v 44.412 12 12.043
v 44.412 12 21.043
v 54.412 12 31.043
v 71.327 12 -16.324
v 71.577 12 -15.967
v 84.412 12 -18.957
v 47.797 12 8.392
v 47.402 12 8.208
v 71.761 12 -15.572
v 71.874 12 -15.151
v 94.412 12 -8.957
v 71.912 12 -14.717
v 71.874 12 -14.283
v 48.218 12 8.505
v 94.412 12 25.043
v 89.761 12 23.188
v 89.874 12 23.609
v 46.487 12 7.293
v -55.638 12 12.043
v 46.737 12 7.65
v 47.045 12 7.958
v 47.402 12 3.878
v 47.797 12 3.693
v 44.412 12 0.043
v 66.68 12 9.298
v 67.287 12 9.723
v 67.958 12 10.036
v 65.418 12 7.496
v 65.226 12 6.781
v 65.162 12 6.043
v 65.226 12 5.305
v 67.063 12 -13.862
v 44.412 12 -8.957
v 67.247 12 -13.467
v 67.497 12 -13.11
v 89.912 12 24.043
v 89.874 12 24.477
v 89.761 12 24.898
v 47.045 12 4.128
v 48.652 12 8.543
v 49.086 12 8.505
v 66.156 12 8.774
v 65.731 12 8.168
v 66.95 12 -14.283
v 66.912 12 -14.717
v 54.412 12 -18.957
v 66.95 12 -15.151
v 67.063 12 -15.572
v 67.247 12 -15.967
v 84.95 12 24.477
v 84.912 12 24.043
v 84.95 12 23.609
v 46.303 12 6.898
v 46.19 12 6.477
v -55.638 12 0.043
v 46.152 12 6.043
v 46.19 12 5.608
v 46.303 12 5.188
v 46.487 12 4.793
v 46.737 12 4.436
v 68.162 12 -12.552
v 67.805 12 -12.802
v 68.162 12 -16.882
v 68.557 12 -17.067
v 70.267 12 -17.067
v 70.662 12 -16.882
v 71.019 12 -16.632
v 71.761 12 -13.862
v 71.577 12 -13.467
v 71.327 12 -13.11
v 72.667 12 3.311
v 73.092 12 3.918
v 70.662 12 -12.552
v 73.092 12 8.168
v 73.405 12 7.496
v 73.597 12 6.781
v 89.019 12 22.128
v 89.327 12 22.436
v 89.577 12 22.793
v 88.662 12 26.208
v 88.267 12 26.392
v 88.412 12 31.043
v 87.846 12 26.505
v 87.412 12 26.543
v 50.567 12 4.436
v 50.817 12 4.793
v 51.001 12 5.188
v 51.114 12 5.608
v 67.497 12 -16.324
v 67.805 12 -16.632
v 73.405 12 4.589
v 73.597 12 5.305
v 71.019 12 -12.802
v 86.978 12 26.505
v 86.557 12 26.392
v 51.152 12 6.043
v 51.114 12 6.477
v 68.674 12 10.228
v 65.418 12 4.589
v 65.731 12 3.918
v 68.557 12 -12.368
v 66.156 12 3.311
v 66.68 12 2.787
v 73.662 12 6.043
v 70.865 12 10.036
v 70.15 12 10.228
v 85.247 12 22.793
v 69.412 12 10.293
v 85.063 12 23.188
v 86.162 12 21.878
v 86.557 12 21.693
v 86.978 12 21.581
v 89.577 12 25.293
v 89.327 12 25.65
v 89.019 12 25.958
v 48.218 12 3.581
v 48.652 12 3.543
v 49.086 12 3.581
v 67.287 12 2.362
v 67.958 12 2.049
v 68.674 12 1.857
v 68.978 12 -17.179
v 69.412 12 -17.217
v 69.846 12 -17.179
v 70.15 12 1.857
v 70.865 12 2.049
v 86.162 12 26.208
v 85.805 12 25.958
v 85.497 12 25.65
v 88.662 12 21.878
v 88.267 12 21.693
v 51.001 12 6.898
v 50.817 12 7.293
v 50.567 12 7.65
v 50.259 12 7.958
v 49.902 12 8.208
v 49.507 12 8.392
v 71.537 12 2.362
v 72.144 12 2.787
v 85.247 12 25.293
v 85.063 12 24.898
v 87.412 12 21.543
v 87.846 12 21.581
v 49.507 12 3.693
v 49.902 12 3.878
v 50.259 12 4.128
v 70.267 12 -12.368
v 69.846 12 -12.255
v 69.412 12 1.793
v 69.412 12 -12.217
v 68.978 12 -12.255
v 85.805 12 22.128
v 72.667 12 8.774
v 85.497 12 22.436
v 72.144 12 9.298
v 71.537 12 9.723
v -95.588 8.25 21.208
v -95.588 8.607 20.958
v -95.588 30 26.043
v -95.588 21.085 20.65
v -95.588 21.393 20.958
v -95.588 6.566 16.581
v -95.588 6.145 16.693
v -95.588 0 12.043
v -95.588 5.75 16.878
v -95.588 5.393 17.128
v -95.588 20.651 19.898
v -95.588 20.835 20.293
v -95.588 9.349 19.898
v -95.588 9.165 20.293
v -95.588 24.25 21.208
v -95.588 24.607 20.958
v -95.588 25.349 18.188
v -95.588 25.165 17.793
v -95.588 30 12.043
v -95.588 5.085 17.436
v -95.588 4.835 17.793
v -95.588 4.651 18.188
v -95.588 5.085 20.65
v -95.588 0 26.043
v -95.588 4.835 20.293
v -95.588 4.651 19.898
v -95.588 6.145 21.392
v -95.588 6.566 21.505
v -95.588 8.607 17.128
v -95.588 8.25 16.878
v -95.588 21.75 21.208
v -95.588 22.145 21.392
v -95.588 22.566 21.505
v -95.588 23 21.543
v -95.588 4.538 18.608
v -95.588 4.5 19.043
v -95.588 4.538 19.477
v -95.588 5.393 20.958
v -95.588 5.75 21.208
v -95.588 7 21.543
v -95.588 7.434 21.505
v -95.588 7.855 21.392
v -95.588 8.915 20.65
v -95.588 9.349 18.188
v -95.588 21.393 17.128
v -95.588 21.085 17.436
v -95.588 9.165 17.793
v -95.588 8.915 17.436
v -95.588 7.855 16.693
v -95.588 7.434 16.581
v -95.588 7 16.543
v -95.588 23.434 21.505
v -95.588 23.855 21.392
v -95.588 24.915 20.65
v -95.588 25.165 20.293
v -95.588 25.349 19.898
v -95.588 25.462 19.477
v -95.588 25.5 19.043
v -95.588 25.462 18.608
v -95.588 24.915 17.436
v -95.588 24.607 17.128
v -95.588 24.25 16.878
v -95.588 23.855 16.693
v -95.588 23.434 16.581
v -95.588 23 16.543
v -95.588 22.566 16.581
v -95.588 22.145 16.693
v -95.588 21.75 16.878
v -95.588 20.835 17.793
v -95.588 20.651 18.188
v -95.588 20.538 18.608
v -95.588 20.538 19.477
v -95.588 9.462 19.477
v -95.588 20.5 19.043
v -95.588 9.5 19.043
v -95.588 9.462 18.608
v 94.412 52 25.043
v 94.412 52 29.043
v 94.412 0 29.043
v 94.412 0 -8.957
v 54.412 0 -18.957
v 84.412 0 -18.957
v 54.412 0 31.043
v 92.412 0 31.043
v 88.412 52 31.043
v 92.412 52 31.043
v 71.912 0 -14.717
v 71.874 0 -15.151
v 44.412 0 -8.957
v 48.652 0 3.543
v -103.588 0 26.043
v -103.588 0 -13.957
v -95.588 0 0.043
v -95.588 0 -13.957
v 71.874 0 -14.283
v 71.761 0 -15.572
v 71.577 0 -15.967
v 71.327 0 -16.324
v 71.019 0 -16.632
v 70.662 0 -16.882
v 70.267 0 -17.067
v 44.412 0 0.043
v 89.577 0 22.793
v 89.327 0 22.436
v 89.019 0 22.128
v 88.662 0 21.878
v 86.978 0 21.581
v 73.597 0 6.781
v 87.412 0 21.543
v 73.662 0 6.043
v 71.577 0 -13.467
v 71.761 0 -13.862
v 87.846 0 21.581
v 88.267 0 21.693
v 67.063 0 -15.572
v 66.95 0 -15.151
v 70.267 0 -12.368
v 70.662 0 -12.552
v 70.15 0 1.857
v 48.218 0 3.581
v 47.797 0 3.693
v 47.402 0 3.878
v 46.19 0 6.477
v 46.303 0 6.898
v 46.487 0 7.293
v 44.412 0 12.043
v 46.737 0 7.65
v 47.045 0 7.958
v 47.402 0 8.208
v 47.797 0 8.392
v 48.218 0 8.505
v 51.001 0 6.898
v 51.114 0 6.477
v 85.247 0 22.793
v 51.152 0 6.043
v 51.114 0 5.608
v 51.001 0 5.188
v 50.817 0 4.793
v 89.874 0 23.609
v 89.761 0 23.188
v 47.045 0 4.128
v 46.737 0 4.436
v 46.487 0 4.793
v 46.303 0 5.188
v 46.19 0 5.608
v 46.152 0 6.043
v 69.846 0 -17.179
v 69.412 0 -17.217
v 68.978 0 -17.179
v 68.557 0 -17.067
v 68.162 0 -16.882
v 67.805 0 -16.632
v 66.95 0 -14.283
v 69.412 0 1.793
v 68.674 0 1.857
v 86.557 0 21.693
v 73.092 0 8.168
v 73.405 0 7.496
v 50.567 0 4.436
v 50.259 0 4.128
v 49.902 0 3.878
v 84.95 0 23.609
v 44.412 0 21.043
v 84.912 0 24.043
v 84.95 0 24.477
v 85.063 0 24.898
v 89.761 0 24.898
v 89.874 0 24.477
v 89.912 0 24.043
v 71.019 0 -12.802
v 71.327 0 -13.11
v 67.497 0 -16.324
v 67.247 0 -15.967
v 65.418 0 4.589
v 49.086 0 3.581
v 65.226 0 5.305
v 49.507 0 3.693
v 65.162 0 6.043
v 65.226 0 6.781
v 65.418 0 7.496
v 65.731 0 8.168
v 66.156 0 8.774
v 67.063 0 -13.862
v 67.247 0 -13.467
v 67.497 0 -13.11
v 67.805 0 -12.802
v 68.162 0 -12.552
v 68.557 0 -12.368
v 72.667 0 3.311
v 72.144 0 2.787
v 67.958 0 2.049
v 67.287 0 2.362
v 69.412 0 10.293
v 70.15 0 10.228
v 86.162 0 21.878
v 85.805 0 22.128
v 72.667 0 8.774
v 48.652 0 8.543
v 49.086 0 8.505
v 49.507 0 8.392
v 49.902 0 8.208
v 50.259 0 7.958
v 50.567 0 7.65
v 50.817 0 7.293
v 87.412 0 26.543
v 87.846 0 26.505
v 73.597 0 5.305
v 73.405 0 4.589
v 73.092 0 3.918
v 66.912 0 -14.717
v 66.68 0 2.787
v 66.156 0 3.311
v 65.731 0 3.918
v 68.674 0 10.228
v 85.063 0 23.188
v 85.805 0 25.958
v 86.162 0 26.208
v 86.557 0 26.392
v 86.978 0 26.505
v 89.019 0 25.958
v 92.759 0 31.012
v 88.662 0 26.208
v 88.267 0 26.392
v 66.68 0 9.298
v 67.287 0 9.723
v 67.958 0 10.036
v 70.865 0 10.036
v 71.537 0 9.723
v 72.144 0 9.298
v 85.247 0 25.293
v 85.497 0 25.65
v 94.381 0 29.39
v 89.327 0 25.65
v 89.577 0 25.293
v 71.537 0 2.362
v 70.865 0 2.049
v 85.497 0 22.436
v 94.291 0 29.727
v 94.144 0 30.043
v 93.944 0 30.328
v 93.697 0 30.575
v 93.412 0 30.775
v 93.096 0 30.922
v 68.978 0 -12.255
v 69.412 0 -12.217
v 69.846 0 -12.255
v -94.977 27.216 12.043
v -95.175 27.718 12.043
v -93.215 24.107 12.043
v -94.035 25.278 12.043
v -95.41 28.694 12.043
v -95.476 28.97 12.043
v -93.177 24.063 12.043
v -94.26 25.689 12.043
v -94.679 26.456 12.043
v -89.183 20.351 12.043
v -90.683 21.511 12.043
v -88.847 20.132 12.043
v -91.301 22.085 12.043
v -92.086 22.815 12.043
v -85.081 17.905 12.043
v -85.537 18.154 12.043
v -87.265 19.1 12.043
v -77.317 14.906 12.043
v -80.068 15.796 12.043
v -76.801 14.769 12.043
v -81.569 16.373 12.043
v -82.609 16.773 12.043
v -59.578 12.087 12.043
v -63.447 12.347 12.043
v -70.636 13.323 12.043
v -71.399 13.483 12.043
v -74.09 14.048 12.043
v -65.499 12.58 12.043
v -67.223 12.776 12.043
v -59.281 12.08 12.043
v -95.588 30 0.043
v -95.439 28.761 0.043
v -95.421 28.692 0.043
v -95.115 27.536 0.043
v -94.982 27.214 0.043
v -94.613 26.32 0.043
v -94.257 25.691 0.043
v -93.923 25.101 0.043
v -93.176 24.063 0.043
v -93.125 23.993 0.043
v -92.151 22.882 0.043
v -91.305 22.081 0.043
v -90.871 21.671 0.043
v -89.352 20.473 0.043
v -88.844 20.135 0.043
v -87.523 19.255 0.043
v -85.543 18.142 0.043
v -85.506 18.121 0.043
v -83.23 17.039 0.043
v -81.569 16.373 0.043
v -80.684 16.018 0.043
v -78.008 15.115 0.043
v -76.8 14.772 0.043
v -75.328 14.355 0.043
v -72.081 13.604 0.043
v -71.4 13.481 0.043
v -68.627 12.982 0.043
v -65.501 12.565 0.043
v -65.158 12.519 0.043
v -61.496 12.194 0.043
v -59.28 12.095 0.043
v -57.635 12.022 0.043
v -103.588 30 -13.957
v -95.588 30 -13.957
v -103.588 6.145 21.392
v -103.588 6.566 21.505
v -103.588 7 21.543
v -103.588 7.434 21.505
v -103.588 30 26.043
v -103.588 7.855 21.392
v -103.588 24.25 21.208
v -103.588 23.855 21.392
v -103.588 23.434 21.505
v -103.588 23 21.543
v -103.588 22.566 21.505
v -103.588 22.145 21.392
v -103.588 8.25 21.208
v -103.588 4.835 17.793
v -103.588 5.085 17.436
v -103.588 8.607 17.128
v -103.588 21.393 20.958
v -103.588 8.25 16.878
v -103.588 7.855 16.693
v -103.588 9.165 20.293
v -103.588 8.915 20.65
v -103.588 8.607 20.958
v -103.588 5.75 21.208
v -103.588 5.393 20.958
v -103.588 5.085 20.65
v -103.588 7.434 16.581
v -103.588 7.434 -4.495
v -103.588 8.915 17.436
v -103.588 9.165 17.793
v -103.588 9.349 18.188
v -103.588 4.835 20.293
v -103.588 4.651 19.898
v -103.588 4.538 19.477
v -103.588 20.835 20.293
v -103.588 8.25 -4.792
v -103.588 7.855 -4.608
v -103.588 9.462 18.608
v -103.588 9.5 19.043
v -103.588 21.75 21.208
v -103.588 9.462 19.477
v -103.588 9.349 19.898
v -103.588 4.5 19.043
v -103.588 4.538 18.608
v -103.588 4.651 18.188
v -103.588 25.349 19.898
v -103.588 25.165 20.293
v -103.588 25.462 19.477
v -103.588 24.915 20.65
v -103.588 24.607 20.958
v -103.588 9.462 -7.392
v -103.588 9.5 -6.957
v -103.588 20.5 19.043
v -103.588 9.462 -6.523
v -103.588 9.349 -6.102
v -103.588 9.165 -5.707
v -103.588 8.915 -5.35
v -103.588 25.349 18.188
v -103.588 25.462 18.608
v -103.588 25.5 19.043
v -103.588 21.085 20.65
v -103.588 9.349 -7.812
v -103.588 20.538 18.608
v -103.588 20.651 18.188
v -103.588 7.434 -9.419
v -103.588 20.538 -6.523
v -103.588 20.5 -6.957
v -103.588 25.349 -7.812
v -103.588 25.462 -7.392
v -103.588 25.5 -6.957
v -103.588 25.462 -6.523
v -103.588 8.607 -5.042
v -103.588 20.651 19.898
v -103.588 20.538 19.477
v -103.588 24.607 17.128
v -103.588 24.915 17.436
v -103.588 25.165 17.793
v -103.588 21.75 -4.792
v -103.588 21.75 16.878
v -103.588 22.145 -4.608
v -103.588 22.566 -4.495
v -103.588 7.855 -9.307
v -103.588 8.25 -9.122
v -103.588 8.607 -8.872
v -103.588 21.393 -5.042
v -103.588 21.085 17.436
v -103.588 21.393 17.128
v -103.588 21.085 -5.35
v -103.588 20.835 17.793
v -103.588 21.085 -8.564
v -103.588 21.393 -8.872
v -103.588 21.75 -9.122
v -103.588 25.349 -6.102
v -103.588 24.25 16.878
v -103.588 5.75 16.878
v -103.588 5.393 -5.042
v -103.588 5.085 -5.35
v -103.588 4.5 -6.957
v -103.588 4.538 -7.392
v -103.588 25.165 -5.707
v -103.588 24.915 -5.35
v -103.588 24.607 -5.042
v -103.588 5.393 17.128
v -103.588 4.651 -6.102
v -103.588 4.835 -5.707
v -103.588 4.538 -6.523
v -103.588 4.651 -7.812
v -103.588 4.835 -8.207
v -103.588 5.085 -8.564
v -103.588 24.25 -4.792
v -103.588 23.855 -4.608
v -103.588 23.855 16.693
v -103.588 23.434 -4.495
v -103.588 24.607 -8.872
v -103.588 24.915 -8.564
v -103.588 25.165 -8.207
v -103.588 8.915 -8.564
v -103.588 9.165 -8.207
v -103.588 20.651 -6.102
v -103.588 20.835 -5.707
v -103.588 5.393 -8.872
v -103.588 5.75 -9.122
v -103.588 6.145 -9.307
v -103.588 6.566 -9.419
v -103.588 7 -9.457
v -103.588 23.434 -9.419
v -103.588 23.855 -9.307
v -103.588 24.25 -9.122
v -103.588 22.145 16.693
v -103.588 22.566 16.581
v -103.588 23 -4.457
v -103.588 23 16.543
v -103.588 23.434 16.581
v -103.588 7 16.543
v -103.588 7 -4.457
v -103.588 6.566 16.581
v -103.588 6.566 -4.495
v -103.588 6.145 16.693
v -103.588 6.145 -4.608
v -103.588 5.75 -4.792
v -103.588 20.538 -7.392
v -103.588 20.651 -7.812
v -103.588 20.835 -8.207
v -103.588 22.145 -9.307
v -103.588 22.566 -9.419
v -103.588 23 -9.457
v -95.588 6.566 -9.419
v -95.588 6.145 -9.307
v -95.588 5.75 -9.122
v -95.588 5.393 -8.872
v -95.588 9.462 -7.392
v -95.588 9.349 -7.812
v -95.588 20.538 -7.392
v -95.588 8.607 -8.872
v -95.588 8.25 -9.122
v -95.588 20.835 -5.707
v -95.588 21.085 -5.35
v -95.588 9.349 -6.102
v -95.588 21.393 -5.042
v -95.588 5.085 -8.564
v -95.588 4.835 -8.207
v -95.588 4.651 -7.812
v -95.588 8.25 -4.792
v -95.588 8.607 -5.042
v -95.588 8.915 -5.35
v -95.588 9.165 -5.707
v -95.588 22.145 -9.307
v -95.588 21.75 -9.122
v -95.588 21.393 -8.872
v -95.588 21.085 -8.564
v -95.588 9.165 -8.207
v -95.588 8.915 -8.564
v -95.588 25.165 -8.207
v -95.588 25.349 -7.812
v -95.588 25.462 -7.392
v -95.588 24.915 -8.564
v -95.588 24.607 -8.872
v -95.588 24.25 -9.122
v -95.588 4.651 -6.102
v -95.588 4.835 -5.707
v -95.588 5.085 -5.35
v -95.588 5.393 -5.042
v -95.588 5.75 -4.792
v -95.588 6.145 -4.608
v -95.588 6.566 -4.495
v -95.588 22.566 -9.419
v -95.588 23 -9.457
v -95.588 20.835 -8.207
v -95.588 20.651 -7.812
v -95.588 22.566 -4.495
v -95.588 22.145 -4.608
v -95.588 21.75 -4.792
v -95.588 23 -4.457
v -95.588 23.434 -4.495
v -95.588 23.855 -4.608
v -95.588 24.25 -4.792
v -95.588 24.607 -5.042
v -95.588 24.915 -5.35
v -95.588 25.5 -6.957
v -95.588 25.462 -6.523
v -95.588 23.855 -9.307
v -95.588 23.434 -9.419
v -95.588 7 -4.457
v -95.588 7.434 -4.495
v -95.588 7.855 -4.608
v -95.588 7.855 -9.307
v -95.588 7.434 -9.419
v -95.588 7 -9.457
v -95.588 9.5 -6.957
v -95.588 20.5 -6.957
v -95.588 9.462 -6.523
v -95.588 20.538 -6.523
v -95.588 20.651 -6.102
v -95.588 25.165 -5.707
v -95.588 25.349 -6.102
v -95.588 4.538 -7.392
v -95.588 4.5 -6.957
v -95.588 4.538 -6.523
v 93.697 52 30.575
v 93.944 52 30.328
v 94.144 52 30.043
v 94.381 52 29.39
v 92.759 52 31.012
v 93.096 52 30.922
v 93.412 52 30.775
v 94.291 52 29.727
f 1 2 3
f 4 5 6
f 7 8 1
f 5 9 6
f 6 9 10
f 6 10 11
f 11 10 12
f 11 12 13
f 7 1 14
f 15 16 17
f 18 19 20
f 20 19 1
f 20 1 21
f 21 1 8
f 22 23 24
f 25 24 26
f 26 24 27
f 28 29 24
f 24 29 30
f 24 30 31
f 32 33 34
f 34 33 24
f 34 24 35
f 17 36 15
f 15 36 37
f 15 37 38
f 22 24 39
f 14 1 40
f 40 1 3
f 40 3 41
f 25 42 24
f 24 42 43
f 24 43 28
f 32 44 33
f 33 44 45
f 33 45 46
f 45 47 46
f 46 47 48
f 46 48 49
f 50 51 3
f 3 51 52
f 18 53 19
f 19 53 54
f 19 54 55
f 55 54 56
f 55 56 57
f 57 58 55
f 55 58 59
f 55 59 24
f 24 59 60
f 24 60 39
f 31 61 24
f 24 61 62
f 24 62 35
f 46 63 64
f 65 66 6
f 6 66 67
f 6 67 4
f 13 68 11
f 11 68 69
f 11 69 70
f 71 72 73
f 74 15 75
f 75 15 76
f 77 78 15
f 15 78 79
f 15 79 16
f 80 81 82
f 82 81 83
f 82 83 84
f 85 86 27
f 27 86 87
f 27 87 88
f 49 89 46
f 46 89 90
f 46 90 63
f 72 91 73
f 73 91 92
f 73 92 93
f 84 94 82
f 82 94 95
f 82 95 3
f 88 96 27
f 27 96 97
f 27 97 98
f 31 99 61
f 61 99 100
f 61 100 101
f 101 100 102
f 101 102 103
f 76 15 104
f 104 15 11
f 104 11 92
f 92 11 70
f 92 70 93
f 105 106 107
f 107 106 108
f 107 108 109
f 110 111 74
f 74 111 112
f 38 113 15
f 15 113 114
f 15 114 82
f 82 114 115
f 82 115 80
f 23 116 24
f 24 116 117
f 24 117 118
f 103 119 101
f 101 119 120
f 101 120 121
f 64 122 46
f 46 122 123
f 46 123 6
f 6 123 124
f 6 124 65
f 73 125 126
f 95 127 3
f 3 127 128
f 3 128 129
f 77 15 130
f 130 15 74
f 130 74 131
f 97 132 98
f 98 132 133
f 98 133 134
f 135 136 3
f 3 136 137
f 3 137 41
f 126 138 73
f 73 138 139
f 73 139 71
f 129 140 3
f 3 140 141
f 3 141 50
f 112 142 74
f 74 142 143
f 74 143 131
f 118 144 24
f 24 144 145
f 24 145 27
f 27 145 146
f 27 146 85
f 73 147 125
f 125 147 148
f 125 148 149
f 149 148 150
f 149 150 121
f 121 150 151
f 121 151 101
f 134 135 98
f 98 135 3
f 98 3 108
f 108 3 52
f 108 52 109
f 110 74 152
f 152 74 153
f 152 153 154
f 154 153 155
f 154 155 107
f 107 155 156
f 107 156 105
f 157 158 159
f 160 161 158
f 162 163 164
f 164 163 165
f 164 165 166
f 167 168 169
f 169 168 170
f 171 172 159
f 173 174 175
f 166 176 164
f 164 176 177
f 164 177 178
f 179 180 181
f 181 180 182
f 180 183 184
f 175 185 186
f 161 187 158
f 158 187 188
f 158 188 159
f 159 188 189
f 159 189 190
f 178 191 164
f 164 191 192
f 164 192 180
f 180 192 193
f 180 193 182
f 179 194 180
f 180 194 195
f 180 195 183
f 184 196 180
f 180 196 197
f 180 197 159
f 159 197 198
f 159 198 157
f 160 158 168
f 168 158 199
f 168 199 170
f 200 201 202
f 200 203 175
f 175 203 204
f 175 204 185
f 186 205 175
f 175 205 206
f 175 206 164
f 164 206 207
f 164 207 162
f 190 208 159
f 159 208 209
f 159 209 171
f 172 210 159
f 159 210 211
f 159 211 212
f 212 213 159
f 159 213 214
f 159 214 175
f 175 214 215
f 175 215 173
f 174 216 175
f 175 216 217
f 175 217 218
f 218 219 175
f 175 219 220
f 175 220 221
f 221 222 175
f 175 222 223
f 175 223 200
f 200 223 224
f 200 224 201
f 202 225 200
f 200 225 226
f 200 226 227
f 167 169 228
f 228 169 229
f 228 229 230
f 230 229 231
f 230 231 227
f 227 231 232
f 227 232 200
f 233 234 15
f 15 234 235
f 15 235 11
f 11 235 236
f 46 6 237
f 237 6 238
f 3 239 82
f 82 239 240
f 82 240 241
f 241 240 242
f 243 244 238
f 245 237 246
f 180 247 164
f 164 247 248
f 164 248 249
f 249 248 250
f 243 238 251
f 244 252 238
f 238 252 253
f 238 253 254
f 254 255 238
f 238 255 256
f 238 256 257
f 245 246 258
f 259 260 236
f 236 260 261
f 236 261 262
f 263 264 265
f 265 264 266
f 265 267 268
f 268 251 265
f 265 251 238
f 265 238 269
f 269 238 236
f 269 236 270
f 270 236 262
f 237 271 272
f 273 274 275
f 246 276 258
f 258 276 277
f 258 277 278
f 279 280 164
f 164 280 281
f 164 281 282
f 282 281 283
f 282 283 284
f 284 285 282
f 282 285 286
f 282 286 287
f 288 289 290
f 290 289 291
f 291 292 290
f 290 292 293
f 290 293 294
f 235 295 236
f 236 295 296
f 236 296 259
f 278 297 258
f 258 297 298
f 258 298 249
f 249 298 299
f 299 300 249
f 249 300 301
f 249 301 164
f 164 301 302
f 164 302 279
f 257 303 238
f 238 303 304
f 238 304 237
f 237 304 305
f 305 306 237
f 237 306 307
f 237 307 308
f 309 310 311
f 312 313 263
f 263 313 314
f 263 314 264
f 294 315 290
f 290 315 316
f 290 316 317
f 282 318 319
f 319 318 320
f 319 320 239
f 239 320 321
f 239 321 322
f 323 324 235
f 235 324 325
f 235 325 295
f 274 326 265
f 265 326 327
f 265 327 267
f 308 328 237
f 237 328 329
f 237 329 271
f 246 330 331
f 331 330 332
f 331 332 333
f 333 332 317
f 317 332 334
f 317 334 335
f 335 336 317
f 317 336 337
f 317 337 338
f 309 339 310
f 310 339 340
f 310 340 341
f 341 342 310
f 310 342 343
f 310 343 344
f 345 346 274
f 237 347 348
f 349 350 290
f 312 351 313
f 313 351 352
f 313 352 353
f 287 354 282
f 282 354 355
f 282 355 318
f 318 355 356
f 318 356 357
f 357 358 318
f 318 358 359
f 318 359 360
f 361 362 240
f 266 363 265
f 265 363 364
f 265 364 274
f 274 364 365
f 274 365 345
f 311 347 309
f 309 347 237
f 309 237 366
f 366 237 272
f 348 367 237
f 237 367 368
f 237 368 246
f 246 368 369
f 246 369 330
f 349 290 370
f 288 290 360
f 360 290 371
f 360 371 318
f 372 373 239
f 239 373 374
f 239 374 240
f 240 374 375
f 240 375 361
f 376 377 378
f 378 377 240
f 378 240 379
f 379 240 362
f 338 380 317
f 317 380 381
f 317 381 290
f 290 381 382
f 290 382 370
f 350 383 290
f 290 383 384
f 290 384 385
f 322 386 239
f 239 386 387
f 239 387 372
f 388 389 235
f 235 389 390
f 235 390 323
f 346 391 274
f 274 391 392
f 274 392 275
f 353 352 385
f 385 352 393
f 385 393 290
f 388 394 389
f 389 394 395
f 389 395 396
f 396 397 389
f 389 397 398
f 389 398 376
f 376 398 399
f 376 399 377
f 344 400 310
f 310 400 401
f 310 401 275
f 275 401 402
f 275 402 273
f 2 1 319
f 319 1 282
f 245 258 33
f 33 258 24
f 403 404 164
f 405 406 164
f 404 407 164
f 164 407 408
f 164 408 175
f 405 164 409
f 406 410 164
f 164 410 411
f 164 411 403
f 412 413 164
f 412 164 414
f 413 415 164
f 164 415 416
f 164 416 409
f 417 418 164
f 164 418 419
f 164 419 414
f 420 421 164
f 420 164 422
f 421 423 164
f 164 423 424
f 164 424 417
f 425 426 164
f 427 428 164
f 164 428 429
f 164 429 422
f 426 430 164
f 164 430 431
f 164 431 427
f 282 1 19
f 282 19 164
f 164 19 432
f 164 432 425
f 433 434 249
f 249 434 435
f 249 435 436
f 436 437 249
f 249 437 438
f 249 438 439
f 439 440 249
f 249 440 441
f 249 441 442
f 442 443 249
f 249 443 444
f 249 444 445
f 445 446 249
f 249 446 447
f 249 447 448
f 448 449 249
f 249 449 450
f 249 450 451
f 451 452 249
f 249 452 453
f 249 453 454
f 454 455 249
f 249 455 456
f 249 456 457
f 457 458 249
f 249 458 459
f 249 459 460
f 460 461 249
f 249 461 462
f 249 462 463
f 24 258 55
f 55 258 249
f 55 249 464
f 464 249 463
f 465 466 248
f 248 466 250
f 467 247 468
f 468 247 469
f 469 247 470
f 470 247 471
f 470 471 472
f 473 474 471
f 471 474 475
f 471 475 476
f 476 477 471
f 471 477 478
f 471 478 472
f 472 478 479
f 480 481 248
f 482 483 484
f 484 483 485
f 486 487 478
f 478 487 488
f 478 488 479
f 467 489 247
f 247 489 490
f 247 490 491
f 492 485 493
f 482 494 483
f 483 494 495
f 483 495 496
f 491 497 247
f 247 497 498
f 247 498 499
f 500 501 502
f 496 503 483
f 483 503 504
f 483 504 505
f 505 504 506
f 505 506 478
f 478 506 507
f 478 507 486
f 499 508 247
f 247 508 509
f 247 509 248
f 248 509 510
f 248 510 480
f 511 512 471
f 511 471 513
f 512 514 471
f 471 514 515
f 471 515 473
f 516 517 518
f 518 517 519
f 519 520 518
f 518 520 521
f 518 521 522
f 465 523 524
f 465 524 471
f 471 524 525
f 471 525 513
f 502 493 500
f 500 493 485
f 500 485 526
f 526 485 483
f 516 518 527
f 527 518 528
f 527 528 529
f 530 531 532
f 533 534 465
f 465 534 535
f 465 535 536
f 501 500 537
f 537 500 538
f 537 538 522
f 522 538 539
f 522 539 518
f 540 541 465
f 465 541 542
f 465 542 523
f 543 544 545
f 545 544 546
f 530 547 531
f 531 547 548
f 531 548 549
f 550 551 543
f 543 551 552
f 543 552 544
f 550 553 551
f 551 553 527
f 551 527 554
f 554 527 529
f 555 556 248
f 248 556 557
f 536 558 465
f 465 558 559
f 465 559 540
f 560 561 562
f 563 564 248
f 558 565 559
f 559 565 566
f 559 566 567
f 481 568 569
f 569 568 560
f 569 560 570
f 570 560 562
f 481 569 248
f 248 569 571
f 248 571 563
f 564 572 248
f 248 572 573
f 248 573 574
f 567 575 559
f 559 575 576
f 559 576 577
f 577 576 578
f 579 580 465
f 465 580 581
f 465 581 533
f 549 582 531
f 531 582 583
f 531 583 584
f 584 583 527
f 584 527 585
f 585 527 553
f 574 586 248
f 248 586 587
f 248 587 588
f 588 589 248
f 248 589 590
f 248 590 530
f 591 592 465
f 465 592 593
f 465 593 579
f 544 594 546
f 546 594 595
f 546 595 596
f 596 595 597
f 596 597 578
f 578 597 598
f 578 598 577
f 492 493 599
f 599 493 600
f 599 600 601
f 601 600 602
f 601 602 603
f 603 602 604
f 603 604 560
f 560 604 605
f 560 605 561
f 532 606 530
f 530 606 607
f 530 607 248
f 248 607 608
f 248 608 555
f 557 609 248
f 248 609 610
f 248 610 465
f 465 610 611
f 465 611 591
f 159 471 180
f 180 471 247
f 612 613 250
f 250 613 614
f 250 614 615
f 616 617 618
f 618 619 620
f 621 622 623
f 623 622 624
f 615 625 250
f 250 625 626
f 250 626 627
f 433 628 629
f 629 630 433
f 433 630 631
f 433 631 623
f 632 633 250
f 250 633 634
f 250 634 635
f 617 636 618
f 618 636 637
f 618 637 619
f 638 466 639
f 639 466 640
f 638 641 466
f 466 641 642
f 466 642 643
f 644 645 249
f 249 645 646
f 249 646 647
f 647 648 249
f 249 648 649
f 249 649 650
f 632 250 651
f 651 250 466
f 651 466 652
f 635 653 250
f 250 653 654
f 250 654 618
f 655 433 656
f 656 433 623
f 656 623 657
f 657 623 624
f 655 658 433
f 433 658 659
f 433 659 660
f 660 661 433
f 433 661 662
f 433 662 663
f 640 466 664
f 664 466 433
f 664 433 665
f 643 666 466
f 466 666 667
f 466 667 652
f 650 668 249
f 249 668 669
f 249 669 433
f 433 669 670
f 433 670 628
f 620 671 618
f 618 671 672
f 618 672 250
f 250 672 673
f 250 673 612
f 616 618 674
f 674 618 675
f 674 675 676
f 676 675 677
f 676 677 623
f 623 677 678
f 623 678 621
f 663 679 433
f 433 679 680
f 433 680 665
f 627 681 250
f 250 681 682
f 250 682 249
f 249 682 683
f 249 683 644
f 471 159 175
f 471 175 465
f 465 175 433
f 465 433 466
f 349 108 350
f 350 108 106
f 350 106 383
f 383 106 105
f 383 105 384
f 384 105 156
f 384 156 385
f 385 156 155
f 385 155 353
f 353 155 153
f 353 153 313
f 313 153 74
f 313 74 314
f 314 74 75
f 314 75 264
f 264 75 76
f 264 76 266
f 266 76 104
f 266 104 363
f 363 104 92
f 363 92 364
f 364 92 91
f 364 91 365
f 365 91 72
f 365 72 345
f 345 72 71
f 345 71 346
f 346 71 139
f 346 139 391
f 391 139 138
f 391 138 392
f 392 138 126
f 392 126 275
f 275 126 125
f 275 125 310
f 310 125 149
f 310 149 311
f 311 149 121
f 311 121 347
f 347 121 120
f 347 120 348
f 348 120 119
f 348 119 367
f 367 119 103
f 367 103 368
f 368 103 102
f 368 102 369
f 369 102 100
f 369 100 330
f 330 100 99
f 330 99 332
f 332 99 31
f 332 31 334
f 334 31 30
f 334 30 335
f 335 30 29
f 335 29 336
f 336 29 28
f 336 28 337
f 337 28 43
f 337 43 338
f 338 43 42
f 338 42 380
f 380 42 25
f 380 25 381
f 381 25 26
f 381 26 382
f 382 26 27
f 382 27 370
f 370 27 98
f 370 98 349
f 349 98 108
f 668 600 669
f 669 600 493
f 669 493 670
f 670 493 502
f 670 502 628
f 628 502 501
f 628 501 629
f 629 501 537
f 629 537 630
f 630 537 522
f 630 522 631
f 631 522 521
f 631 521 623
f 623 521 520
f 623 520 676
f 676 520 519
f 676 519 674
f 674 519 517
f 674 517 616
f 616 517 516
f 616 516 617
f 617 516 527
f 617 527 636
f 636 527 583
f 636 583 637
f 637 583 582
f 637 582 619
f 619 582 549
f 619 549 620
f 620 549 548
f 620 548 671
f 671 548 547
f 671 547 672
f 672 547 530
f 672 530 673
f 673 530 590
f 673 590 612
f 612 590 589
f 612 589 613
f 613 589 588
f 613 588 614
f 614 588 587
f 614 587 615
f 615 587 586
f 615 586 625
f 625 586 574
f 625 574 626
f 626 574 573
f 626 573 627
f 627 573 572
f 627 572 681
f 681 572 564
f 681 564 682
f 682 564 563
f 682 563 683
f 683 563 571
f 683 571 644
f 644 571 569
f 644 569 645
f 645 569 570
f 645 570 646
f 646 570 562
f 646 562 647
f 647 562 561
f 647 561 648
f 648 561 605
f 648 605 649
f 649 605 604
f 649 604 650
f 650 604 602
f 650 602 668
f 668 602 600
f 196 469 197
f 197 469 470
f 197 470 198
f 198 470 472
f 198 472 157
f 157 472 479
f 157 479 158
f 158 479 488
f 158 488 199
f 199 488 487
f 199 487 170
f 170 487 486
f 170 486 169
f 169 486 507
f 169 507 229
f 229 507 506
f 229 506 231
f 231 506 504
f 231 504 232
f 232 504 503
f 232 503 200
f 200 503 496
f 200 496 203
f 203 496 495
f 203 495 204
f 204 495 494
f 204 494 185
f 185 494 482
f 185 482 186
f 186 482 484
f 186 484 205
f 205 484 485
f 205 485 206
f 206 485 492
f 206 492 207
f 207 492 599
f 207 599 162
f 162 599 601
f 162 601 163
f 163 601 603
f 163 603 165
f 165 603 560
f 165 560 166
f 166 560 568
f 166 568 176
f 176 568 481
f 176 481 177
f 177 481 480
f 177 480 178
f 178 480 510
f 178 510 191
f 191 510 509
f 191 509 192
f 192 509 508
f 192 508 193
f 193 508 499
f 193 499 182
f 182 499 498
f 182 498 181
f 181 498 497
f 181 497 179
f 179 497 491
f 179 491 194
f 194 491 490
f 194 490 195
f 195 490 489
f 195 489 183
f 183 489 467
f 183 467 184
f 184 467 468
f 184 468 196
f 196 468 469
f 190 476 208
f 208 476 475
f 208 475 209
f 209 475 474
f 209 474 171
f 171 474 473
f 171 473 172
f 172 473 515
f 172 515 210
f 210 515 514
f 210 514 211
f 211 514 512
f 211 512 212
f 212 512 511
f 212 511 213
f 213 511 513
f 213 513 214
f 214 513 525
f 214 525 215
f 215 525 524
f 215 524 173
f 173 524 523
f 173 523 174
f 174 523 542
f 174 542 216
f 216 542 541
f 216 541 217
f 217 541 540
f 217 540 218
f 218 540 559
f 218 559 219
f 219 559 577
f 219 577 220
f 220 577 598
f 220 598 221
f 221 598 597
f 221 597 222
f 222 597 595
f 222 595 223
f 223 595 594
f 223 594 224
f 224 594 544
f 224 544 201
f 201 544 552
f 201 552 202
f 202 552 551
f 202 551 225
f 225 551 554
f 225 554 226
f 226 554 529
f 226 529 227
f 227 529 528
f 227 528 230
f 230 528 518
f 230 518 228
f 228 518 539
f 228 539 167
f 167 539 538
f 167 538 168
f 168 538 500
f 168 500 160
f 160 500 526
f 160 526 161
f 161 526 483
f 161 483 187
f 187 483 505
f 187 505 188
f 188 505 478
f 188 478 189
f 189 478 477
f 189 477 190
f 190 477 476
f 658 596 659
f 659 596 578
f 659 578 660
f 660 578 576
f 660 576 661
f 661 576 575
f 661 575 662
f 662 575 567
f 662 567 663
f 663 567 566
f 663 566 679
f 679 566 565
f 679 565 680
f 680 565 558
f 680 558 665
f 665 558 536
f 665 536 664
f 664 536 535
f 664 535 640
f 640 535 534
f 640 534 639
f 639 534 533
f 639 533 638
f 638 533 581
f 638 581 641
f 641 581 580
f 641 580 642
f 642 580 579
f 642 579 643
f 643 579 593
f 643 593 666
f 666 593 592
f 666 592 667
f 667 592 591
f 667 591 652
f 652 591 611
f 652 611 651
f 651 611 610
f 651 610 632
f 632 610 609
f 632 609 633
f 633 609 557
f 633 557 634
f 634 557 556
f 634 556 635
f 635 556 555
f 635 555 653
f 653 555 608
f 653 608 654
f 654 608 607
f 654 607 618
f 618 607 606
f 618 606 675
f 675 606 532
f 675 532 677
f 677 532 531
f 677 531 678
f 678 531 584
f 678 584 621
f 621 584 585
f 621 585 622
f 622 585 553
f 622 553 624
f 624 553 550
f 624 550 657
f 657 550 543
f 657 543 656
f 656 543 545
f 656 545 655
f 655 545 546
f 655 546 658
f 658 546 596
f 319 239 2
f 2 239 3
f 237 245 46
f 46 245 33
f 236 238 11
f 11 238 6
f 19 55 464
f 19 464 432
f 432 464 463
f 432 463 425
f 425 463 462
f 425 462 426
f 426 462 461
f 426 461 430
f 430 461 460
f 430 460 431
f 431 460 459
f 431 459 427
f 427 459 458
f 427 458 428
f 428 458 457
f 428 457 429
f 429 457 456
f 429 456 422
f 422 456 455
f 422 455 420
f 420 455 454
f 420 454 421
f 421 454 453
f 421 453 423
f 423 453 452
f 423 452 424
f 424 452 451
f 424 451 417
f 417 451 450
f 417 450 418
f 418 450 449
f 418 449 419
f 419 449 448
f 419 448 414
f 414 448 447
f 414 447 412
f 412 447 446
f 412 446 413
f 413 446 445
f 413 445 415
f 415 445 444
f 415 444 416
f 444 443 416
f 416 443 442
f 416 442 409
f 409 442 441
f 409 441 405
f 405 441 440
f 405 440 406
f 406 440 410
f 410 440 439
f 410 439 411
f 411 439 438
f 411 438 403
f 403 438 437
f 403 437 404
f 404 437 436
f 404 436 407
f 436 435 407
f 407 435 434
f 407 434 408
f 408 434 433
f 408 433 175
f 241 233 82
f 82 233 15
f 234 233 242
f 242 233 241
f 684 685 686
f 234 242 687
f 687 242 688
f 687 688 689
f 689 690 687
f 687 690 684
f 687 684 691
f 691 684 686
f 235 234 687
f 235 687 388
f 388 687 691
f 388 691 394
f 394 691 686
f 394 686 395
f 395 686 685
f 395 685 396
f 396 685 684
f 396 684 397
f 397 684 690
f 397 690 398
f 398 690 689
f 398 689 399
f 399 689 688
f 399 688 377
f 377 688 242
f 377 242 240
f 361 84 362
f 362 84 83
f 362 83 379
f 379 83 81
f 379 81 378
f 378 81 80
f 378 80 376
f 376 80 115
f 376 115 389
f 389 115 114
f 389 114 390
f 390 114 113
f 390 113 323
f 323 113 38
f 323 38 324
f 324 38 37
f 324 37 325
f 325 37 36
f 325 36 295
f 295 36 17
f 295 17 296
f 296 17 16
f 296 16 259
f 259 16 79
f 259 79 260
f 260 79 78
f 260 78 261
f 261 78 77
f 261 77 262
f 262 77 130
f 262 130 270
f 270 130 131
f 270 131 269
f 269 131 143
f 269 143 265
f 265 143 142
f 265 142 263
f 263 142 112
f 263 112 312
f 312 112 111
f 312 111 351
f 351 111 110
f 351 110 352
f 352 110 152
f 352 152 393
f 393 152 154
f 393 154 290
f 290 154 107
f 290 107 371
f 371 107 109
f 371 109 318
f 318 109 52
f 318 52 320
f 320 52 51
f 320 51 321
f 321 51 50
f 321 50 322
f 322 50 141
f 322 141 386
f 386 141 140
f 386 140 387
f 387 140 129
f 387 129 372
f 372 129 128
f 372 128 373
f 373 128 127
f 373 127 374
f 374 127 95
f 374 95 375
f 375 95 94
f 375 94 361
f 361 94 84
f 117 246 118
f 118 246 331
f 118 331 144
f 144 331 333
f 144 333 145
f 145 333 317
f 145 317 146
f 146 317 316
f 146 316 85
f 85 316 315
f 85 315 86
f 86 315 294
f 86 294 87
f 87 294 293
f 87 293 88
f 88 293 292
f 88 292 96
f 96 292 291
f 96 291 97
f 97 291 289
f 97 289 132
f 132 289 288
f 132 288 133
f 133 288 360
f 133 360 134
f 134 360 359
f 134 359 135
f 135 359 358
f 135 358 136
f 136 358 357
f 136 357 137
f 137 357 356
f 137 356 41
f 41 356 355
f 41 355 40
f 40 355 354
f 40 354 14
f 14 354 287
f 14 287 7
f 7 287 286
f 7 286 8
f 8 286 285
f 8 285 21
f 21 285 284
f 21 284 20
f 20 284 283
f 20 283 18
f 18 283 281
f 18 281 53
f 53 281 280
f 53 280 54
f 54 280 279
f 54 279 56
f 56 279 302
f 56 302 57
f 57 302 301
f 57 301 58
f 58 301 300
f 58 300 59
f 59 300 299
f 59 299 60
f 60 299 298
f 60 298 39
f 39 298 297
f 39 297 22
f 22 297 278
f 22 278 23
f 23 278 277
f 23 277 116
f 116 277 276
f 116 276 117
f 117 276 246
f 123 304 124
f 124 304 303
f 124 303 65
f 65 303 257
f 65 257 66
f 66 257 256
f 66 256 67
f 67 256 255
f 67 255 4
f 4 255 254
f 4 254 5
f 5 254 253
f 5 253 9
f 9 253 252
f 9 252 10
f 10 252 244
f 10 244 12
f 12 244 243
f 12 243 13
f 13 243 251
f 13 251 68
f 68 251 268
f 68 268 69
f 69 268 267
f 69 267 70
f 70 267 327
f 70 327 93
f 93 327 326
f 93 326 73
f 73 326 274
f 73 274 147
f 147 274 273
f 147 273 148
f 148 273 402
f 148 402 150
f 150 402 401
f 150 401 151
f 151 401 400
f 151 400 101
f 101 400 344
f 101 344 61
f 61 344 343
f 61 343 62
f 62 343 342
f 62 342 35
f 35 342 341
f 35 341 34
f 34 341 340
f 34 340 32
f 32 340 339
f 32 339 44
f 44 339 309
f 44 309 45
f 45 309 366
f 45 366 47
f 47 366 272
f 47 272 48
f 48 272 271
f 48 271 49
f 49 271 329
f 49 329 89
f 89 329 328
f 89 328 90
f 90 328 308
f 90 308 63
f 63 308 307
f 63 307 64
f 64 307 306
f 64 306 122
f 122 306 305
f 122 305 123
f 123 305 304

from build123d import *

# Parameters (mm, degrees)
ESQUISSE1_W                 = 50
ESQUISSE1_H                 = 50
ESQUISSE1_W_2               = 140
ESQUISSE1_H_2               = 12
BOSS_EXTRU_2_DEPTH          = 12
BOSS_EXTRU_3_DEPTH          = 30
ESQUISSE3_R                 = 4.25
ENL_V_MAT_EXTRU_1_DEPTH     = 110.627399686
ESQUISSE4_R                 = 2.5
ENL_V_MAT_EXTRU_2_DEPTH     = 8
CHANFREIN2_SIZE             = 10
CONG_1_START                = 0.042620229
CONG_1_DEPTH                = 12
BOSS_EXTRU_4_DEPTH          = 40
ENL_V_START                 = -12
ENL_V_MAT_EXTRU_3_OUTLINE_R = 2.5
ENL_V_MAT_EXTRU_3_DEPTH     = 52
ESQUISSE8_R                 = 2.5
ENL_V_MAT_EXTRU_4_DEPTH     = 12


with BuildPart() as part:
    # Esquisse1 → Boss.-Extru.2 (new body)
    with BuildSketch(Plane(origin=(0, 0, 0), x_dir=(1, 0, 0), z_dir=(0, 1, 0))):
        with Locations((69.411764706, -6.042620229)):
            Rectangle(ESQUISSE1_W, ESQUISSE1_H)
        with Locations((-25.588235294, -6.042620229)):
            Rectangle(ESQUISSE1_W_2, ESQUISSE1_H_2)
    extrude(amount=BOSS_EXTRU_2_DEPTH)

    # Esquisse2 → Boss.-Extru.3 (add)
    with BuildSketch(Plane(origin=(0, 0, 0), x_dir=(1, 0, 0), z_dir=(0, 1, 0))):
        Polygon((-95.588235294, -0.042620229), (-95.588235294, 13.957379771), (-103.588235294, 13.957379771), (-103.588235294, -26.042620229), (-95.588235294, -26.042620229), (-95.588235294, -12.042620229), align=None)
    extrude(amount=BOSS_EXTRU_3_DEPTH)

    # Esquisse3 → Enlèv. mat.-Extru.1 (cut, through all)
    with BuildSketch(Plane(origin=(0, 12, 0), x_dir=(1, 0, 0), z_dir=(0, 1, 0))):
        with Locations(Location((69.411764706, -6.042620229, 0), (0, 0, 270))):
            Circle(ESQUISSE3_R)
    extrude(amount=-ENL_V_MAT_EXTRU_1_DEPTH, mode=Mode.SUBTRACT)

    # Esquisse4 → Enlèv. mat.-Extru.2 (cut)
    with BuildSketch(Plane.ZY.offset(103.588235294)):
        with Locations((-6.957379771, 7)):
            Circle(ESQUISSE4_R)
        with Locations((19.042620229, 7)):
            Circle(ESQUISSE4_R)
        with Locations((19.042620229, 23)):
            Circle(ESQUISSE4_R)
        with Locations((-6.957379771, 23)):
            Circle(ESQUISSE4_R)
    extrude(amount=-ENL_V_MAT_EXTRU_2_DEPTH, mode=Mode.SUBTRACT)

    # Chanfrein2
    chanfrein2_edges = [part.edges().sort_by_distance(p)[0] for p in [
        (44.411764706, 6, 31.042620229),
        (44.411764706, 6, -18.957379771),
        (94.411764706, 6, -18.957379771),
    ]]
    chamfer(chanfrein2_edges, length=CHANFREIN2_SIZE)

    # Congé1: read off the stored shape, not the designer's step
    # Congé1 outline → Congé1 (add)
    with BuildSketch(Plane.XY.offset(CONG_1_START)):
        with BuildLine():
            add(Edge.make_bspline(
                [(-95.588235294, 30), (-94.68710818, 12), (-55.638266583, 12)],
                knots=[0, 0, 0, 1, 1, 1], degree=2, weights=[1, 0.724568837, 1]))
            Line((-95.588235294, 30), (-95.588235294, 12))
            Line((-95.588235294, 12), (-55.638266583, 12))
        make_face()
    extrude(amount=CONG_1_DEPTH)

    # Esquisse6 → Boss.-Extru.4 (add)
    with BuildSketch(Plane(origin=(0, 12, 0), x_dir=(1, 0, 0), z_dir=(0, 1, 0))):
        Polygon((94.411764706, -25.042620229), (88.411764706, -31.042620229), (94.411764706, -31.042620229), align=None)
    extrude(amount=BOSS_EXTRU_4_DEPTH)

    # Enlèv. mat.-Extru.3: read off the stored shape, not the designer's step
    # Enlèv. mat.-Extru.3 outline → Enlèv. mat.-Extru.3 (cut)
    with BuildSketch(Plane(origin=(0, 12, 0), x_dir=(1, 0, 0), z_dir=(0, 1, 0)).offset(ENL_V_START)):
        with BuildLine():
            ThreePointArc((94.411764706, -29.042620229), (93.825978268, -30.456833791), (92.411764706, -31.042620229))
            Line((92.411764706, -31.042620229), (94.411764706, -31.042620229))
            Line((94.411764706, -31.042620229), (94.411764706, -29.042620229))
        make_face()
        with Locations((87.411764706, -24.042620229)):
            Circle(ENL_V_MAT_EXTRU_3_OUTLINE_R)
    extrude(amount=ENL_V_MAT_EXTRU_3_DEPTH, mode=Mode.SUBTRACT)

    # Esquisse8 → Enlèv. mat.-Extru.4 (cut)
    with BuildSketch(Plane.XZ):
        with Locations(Location((48.651764706, 6.042620229, 0), (0, 0, 270))):
            Circle(ESQUISSE8_R)
        with Locations(Location((69.411764706, -14.717379771, 0), (0, 0, 270))):
            Circle(ESQUISSE8_R)
    extrude(amount=-ENL_V_MAT_EXTRU_4_DEPTH, mode=Mode.SUBTRACT)


solid = part.part
